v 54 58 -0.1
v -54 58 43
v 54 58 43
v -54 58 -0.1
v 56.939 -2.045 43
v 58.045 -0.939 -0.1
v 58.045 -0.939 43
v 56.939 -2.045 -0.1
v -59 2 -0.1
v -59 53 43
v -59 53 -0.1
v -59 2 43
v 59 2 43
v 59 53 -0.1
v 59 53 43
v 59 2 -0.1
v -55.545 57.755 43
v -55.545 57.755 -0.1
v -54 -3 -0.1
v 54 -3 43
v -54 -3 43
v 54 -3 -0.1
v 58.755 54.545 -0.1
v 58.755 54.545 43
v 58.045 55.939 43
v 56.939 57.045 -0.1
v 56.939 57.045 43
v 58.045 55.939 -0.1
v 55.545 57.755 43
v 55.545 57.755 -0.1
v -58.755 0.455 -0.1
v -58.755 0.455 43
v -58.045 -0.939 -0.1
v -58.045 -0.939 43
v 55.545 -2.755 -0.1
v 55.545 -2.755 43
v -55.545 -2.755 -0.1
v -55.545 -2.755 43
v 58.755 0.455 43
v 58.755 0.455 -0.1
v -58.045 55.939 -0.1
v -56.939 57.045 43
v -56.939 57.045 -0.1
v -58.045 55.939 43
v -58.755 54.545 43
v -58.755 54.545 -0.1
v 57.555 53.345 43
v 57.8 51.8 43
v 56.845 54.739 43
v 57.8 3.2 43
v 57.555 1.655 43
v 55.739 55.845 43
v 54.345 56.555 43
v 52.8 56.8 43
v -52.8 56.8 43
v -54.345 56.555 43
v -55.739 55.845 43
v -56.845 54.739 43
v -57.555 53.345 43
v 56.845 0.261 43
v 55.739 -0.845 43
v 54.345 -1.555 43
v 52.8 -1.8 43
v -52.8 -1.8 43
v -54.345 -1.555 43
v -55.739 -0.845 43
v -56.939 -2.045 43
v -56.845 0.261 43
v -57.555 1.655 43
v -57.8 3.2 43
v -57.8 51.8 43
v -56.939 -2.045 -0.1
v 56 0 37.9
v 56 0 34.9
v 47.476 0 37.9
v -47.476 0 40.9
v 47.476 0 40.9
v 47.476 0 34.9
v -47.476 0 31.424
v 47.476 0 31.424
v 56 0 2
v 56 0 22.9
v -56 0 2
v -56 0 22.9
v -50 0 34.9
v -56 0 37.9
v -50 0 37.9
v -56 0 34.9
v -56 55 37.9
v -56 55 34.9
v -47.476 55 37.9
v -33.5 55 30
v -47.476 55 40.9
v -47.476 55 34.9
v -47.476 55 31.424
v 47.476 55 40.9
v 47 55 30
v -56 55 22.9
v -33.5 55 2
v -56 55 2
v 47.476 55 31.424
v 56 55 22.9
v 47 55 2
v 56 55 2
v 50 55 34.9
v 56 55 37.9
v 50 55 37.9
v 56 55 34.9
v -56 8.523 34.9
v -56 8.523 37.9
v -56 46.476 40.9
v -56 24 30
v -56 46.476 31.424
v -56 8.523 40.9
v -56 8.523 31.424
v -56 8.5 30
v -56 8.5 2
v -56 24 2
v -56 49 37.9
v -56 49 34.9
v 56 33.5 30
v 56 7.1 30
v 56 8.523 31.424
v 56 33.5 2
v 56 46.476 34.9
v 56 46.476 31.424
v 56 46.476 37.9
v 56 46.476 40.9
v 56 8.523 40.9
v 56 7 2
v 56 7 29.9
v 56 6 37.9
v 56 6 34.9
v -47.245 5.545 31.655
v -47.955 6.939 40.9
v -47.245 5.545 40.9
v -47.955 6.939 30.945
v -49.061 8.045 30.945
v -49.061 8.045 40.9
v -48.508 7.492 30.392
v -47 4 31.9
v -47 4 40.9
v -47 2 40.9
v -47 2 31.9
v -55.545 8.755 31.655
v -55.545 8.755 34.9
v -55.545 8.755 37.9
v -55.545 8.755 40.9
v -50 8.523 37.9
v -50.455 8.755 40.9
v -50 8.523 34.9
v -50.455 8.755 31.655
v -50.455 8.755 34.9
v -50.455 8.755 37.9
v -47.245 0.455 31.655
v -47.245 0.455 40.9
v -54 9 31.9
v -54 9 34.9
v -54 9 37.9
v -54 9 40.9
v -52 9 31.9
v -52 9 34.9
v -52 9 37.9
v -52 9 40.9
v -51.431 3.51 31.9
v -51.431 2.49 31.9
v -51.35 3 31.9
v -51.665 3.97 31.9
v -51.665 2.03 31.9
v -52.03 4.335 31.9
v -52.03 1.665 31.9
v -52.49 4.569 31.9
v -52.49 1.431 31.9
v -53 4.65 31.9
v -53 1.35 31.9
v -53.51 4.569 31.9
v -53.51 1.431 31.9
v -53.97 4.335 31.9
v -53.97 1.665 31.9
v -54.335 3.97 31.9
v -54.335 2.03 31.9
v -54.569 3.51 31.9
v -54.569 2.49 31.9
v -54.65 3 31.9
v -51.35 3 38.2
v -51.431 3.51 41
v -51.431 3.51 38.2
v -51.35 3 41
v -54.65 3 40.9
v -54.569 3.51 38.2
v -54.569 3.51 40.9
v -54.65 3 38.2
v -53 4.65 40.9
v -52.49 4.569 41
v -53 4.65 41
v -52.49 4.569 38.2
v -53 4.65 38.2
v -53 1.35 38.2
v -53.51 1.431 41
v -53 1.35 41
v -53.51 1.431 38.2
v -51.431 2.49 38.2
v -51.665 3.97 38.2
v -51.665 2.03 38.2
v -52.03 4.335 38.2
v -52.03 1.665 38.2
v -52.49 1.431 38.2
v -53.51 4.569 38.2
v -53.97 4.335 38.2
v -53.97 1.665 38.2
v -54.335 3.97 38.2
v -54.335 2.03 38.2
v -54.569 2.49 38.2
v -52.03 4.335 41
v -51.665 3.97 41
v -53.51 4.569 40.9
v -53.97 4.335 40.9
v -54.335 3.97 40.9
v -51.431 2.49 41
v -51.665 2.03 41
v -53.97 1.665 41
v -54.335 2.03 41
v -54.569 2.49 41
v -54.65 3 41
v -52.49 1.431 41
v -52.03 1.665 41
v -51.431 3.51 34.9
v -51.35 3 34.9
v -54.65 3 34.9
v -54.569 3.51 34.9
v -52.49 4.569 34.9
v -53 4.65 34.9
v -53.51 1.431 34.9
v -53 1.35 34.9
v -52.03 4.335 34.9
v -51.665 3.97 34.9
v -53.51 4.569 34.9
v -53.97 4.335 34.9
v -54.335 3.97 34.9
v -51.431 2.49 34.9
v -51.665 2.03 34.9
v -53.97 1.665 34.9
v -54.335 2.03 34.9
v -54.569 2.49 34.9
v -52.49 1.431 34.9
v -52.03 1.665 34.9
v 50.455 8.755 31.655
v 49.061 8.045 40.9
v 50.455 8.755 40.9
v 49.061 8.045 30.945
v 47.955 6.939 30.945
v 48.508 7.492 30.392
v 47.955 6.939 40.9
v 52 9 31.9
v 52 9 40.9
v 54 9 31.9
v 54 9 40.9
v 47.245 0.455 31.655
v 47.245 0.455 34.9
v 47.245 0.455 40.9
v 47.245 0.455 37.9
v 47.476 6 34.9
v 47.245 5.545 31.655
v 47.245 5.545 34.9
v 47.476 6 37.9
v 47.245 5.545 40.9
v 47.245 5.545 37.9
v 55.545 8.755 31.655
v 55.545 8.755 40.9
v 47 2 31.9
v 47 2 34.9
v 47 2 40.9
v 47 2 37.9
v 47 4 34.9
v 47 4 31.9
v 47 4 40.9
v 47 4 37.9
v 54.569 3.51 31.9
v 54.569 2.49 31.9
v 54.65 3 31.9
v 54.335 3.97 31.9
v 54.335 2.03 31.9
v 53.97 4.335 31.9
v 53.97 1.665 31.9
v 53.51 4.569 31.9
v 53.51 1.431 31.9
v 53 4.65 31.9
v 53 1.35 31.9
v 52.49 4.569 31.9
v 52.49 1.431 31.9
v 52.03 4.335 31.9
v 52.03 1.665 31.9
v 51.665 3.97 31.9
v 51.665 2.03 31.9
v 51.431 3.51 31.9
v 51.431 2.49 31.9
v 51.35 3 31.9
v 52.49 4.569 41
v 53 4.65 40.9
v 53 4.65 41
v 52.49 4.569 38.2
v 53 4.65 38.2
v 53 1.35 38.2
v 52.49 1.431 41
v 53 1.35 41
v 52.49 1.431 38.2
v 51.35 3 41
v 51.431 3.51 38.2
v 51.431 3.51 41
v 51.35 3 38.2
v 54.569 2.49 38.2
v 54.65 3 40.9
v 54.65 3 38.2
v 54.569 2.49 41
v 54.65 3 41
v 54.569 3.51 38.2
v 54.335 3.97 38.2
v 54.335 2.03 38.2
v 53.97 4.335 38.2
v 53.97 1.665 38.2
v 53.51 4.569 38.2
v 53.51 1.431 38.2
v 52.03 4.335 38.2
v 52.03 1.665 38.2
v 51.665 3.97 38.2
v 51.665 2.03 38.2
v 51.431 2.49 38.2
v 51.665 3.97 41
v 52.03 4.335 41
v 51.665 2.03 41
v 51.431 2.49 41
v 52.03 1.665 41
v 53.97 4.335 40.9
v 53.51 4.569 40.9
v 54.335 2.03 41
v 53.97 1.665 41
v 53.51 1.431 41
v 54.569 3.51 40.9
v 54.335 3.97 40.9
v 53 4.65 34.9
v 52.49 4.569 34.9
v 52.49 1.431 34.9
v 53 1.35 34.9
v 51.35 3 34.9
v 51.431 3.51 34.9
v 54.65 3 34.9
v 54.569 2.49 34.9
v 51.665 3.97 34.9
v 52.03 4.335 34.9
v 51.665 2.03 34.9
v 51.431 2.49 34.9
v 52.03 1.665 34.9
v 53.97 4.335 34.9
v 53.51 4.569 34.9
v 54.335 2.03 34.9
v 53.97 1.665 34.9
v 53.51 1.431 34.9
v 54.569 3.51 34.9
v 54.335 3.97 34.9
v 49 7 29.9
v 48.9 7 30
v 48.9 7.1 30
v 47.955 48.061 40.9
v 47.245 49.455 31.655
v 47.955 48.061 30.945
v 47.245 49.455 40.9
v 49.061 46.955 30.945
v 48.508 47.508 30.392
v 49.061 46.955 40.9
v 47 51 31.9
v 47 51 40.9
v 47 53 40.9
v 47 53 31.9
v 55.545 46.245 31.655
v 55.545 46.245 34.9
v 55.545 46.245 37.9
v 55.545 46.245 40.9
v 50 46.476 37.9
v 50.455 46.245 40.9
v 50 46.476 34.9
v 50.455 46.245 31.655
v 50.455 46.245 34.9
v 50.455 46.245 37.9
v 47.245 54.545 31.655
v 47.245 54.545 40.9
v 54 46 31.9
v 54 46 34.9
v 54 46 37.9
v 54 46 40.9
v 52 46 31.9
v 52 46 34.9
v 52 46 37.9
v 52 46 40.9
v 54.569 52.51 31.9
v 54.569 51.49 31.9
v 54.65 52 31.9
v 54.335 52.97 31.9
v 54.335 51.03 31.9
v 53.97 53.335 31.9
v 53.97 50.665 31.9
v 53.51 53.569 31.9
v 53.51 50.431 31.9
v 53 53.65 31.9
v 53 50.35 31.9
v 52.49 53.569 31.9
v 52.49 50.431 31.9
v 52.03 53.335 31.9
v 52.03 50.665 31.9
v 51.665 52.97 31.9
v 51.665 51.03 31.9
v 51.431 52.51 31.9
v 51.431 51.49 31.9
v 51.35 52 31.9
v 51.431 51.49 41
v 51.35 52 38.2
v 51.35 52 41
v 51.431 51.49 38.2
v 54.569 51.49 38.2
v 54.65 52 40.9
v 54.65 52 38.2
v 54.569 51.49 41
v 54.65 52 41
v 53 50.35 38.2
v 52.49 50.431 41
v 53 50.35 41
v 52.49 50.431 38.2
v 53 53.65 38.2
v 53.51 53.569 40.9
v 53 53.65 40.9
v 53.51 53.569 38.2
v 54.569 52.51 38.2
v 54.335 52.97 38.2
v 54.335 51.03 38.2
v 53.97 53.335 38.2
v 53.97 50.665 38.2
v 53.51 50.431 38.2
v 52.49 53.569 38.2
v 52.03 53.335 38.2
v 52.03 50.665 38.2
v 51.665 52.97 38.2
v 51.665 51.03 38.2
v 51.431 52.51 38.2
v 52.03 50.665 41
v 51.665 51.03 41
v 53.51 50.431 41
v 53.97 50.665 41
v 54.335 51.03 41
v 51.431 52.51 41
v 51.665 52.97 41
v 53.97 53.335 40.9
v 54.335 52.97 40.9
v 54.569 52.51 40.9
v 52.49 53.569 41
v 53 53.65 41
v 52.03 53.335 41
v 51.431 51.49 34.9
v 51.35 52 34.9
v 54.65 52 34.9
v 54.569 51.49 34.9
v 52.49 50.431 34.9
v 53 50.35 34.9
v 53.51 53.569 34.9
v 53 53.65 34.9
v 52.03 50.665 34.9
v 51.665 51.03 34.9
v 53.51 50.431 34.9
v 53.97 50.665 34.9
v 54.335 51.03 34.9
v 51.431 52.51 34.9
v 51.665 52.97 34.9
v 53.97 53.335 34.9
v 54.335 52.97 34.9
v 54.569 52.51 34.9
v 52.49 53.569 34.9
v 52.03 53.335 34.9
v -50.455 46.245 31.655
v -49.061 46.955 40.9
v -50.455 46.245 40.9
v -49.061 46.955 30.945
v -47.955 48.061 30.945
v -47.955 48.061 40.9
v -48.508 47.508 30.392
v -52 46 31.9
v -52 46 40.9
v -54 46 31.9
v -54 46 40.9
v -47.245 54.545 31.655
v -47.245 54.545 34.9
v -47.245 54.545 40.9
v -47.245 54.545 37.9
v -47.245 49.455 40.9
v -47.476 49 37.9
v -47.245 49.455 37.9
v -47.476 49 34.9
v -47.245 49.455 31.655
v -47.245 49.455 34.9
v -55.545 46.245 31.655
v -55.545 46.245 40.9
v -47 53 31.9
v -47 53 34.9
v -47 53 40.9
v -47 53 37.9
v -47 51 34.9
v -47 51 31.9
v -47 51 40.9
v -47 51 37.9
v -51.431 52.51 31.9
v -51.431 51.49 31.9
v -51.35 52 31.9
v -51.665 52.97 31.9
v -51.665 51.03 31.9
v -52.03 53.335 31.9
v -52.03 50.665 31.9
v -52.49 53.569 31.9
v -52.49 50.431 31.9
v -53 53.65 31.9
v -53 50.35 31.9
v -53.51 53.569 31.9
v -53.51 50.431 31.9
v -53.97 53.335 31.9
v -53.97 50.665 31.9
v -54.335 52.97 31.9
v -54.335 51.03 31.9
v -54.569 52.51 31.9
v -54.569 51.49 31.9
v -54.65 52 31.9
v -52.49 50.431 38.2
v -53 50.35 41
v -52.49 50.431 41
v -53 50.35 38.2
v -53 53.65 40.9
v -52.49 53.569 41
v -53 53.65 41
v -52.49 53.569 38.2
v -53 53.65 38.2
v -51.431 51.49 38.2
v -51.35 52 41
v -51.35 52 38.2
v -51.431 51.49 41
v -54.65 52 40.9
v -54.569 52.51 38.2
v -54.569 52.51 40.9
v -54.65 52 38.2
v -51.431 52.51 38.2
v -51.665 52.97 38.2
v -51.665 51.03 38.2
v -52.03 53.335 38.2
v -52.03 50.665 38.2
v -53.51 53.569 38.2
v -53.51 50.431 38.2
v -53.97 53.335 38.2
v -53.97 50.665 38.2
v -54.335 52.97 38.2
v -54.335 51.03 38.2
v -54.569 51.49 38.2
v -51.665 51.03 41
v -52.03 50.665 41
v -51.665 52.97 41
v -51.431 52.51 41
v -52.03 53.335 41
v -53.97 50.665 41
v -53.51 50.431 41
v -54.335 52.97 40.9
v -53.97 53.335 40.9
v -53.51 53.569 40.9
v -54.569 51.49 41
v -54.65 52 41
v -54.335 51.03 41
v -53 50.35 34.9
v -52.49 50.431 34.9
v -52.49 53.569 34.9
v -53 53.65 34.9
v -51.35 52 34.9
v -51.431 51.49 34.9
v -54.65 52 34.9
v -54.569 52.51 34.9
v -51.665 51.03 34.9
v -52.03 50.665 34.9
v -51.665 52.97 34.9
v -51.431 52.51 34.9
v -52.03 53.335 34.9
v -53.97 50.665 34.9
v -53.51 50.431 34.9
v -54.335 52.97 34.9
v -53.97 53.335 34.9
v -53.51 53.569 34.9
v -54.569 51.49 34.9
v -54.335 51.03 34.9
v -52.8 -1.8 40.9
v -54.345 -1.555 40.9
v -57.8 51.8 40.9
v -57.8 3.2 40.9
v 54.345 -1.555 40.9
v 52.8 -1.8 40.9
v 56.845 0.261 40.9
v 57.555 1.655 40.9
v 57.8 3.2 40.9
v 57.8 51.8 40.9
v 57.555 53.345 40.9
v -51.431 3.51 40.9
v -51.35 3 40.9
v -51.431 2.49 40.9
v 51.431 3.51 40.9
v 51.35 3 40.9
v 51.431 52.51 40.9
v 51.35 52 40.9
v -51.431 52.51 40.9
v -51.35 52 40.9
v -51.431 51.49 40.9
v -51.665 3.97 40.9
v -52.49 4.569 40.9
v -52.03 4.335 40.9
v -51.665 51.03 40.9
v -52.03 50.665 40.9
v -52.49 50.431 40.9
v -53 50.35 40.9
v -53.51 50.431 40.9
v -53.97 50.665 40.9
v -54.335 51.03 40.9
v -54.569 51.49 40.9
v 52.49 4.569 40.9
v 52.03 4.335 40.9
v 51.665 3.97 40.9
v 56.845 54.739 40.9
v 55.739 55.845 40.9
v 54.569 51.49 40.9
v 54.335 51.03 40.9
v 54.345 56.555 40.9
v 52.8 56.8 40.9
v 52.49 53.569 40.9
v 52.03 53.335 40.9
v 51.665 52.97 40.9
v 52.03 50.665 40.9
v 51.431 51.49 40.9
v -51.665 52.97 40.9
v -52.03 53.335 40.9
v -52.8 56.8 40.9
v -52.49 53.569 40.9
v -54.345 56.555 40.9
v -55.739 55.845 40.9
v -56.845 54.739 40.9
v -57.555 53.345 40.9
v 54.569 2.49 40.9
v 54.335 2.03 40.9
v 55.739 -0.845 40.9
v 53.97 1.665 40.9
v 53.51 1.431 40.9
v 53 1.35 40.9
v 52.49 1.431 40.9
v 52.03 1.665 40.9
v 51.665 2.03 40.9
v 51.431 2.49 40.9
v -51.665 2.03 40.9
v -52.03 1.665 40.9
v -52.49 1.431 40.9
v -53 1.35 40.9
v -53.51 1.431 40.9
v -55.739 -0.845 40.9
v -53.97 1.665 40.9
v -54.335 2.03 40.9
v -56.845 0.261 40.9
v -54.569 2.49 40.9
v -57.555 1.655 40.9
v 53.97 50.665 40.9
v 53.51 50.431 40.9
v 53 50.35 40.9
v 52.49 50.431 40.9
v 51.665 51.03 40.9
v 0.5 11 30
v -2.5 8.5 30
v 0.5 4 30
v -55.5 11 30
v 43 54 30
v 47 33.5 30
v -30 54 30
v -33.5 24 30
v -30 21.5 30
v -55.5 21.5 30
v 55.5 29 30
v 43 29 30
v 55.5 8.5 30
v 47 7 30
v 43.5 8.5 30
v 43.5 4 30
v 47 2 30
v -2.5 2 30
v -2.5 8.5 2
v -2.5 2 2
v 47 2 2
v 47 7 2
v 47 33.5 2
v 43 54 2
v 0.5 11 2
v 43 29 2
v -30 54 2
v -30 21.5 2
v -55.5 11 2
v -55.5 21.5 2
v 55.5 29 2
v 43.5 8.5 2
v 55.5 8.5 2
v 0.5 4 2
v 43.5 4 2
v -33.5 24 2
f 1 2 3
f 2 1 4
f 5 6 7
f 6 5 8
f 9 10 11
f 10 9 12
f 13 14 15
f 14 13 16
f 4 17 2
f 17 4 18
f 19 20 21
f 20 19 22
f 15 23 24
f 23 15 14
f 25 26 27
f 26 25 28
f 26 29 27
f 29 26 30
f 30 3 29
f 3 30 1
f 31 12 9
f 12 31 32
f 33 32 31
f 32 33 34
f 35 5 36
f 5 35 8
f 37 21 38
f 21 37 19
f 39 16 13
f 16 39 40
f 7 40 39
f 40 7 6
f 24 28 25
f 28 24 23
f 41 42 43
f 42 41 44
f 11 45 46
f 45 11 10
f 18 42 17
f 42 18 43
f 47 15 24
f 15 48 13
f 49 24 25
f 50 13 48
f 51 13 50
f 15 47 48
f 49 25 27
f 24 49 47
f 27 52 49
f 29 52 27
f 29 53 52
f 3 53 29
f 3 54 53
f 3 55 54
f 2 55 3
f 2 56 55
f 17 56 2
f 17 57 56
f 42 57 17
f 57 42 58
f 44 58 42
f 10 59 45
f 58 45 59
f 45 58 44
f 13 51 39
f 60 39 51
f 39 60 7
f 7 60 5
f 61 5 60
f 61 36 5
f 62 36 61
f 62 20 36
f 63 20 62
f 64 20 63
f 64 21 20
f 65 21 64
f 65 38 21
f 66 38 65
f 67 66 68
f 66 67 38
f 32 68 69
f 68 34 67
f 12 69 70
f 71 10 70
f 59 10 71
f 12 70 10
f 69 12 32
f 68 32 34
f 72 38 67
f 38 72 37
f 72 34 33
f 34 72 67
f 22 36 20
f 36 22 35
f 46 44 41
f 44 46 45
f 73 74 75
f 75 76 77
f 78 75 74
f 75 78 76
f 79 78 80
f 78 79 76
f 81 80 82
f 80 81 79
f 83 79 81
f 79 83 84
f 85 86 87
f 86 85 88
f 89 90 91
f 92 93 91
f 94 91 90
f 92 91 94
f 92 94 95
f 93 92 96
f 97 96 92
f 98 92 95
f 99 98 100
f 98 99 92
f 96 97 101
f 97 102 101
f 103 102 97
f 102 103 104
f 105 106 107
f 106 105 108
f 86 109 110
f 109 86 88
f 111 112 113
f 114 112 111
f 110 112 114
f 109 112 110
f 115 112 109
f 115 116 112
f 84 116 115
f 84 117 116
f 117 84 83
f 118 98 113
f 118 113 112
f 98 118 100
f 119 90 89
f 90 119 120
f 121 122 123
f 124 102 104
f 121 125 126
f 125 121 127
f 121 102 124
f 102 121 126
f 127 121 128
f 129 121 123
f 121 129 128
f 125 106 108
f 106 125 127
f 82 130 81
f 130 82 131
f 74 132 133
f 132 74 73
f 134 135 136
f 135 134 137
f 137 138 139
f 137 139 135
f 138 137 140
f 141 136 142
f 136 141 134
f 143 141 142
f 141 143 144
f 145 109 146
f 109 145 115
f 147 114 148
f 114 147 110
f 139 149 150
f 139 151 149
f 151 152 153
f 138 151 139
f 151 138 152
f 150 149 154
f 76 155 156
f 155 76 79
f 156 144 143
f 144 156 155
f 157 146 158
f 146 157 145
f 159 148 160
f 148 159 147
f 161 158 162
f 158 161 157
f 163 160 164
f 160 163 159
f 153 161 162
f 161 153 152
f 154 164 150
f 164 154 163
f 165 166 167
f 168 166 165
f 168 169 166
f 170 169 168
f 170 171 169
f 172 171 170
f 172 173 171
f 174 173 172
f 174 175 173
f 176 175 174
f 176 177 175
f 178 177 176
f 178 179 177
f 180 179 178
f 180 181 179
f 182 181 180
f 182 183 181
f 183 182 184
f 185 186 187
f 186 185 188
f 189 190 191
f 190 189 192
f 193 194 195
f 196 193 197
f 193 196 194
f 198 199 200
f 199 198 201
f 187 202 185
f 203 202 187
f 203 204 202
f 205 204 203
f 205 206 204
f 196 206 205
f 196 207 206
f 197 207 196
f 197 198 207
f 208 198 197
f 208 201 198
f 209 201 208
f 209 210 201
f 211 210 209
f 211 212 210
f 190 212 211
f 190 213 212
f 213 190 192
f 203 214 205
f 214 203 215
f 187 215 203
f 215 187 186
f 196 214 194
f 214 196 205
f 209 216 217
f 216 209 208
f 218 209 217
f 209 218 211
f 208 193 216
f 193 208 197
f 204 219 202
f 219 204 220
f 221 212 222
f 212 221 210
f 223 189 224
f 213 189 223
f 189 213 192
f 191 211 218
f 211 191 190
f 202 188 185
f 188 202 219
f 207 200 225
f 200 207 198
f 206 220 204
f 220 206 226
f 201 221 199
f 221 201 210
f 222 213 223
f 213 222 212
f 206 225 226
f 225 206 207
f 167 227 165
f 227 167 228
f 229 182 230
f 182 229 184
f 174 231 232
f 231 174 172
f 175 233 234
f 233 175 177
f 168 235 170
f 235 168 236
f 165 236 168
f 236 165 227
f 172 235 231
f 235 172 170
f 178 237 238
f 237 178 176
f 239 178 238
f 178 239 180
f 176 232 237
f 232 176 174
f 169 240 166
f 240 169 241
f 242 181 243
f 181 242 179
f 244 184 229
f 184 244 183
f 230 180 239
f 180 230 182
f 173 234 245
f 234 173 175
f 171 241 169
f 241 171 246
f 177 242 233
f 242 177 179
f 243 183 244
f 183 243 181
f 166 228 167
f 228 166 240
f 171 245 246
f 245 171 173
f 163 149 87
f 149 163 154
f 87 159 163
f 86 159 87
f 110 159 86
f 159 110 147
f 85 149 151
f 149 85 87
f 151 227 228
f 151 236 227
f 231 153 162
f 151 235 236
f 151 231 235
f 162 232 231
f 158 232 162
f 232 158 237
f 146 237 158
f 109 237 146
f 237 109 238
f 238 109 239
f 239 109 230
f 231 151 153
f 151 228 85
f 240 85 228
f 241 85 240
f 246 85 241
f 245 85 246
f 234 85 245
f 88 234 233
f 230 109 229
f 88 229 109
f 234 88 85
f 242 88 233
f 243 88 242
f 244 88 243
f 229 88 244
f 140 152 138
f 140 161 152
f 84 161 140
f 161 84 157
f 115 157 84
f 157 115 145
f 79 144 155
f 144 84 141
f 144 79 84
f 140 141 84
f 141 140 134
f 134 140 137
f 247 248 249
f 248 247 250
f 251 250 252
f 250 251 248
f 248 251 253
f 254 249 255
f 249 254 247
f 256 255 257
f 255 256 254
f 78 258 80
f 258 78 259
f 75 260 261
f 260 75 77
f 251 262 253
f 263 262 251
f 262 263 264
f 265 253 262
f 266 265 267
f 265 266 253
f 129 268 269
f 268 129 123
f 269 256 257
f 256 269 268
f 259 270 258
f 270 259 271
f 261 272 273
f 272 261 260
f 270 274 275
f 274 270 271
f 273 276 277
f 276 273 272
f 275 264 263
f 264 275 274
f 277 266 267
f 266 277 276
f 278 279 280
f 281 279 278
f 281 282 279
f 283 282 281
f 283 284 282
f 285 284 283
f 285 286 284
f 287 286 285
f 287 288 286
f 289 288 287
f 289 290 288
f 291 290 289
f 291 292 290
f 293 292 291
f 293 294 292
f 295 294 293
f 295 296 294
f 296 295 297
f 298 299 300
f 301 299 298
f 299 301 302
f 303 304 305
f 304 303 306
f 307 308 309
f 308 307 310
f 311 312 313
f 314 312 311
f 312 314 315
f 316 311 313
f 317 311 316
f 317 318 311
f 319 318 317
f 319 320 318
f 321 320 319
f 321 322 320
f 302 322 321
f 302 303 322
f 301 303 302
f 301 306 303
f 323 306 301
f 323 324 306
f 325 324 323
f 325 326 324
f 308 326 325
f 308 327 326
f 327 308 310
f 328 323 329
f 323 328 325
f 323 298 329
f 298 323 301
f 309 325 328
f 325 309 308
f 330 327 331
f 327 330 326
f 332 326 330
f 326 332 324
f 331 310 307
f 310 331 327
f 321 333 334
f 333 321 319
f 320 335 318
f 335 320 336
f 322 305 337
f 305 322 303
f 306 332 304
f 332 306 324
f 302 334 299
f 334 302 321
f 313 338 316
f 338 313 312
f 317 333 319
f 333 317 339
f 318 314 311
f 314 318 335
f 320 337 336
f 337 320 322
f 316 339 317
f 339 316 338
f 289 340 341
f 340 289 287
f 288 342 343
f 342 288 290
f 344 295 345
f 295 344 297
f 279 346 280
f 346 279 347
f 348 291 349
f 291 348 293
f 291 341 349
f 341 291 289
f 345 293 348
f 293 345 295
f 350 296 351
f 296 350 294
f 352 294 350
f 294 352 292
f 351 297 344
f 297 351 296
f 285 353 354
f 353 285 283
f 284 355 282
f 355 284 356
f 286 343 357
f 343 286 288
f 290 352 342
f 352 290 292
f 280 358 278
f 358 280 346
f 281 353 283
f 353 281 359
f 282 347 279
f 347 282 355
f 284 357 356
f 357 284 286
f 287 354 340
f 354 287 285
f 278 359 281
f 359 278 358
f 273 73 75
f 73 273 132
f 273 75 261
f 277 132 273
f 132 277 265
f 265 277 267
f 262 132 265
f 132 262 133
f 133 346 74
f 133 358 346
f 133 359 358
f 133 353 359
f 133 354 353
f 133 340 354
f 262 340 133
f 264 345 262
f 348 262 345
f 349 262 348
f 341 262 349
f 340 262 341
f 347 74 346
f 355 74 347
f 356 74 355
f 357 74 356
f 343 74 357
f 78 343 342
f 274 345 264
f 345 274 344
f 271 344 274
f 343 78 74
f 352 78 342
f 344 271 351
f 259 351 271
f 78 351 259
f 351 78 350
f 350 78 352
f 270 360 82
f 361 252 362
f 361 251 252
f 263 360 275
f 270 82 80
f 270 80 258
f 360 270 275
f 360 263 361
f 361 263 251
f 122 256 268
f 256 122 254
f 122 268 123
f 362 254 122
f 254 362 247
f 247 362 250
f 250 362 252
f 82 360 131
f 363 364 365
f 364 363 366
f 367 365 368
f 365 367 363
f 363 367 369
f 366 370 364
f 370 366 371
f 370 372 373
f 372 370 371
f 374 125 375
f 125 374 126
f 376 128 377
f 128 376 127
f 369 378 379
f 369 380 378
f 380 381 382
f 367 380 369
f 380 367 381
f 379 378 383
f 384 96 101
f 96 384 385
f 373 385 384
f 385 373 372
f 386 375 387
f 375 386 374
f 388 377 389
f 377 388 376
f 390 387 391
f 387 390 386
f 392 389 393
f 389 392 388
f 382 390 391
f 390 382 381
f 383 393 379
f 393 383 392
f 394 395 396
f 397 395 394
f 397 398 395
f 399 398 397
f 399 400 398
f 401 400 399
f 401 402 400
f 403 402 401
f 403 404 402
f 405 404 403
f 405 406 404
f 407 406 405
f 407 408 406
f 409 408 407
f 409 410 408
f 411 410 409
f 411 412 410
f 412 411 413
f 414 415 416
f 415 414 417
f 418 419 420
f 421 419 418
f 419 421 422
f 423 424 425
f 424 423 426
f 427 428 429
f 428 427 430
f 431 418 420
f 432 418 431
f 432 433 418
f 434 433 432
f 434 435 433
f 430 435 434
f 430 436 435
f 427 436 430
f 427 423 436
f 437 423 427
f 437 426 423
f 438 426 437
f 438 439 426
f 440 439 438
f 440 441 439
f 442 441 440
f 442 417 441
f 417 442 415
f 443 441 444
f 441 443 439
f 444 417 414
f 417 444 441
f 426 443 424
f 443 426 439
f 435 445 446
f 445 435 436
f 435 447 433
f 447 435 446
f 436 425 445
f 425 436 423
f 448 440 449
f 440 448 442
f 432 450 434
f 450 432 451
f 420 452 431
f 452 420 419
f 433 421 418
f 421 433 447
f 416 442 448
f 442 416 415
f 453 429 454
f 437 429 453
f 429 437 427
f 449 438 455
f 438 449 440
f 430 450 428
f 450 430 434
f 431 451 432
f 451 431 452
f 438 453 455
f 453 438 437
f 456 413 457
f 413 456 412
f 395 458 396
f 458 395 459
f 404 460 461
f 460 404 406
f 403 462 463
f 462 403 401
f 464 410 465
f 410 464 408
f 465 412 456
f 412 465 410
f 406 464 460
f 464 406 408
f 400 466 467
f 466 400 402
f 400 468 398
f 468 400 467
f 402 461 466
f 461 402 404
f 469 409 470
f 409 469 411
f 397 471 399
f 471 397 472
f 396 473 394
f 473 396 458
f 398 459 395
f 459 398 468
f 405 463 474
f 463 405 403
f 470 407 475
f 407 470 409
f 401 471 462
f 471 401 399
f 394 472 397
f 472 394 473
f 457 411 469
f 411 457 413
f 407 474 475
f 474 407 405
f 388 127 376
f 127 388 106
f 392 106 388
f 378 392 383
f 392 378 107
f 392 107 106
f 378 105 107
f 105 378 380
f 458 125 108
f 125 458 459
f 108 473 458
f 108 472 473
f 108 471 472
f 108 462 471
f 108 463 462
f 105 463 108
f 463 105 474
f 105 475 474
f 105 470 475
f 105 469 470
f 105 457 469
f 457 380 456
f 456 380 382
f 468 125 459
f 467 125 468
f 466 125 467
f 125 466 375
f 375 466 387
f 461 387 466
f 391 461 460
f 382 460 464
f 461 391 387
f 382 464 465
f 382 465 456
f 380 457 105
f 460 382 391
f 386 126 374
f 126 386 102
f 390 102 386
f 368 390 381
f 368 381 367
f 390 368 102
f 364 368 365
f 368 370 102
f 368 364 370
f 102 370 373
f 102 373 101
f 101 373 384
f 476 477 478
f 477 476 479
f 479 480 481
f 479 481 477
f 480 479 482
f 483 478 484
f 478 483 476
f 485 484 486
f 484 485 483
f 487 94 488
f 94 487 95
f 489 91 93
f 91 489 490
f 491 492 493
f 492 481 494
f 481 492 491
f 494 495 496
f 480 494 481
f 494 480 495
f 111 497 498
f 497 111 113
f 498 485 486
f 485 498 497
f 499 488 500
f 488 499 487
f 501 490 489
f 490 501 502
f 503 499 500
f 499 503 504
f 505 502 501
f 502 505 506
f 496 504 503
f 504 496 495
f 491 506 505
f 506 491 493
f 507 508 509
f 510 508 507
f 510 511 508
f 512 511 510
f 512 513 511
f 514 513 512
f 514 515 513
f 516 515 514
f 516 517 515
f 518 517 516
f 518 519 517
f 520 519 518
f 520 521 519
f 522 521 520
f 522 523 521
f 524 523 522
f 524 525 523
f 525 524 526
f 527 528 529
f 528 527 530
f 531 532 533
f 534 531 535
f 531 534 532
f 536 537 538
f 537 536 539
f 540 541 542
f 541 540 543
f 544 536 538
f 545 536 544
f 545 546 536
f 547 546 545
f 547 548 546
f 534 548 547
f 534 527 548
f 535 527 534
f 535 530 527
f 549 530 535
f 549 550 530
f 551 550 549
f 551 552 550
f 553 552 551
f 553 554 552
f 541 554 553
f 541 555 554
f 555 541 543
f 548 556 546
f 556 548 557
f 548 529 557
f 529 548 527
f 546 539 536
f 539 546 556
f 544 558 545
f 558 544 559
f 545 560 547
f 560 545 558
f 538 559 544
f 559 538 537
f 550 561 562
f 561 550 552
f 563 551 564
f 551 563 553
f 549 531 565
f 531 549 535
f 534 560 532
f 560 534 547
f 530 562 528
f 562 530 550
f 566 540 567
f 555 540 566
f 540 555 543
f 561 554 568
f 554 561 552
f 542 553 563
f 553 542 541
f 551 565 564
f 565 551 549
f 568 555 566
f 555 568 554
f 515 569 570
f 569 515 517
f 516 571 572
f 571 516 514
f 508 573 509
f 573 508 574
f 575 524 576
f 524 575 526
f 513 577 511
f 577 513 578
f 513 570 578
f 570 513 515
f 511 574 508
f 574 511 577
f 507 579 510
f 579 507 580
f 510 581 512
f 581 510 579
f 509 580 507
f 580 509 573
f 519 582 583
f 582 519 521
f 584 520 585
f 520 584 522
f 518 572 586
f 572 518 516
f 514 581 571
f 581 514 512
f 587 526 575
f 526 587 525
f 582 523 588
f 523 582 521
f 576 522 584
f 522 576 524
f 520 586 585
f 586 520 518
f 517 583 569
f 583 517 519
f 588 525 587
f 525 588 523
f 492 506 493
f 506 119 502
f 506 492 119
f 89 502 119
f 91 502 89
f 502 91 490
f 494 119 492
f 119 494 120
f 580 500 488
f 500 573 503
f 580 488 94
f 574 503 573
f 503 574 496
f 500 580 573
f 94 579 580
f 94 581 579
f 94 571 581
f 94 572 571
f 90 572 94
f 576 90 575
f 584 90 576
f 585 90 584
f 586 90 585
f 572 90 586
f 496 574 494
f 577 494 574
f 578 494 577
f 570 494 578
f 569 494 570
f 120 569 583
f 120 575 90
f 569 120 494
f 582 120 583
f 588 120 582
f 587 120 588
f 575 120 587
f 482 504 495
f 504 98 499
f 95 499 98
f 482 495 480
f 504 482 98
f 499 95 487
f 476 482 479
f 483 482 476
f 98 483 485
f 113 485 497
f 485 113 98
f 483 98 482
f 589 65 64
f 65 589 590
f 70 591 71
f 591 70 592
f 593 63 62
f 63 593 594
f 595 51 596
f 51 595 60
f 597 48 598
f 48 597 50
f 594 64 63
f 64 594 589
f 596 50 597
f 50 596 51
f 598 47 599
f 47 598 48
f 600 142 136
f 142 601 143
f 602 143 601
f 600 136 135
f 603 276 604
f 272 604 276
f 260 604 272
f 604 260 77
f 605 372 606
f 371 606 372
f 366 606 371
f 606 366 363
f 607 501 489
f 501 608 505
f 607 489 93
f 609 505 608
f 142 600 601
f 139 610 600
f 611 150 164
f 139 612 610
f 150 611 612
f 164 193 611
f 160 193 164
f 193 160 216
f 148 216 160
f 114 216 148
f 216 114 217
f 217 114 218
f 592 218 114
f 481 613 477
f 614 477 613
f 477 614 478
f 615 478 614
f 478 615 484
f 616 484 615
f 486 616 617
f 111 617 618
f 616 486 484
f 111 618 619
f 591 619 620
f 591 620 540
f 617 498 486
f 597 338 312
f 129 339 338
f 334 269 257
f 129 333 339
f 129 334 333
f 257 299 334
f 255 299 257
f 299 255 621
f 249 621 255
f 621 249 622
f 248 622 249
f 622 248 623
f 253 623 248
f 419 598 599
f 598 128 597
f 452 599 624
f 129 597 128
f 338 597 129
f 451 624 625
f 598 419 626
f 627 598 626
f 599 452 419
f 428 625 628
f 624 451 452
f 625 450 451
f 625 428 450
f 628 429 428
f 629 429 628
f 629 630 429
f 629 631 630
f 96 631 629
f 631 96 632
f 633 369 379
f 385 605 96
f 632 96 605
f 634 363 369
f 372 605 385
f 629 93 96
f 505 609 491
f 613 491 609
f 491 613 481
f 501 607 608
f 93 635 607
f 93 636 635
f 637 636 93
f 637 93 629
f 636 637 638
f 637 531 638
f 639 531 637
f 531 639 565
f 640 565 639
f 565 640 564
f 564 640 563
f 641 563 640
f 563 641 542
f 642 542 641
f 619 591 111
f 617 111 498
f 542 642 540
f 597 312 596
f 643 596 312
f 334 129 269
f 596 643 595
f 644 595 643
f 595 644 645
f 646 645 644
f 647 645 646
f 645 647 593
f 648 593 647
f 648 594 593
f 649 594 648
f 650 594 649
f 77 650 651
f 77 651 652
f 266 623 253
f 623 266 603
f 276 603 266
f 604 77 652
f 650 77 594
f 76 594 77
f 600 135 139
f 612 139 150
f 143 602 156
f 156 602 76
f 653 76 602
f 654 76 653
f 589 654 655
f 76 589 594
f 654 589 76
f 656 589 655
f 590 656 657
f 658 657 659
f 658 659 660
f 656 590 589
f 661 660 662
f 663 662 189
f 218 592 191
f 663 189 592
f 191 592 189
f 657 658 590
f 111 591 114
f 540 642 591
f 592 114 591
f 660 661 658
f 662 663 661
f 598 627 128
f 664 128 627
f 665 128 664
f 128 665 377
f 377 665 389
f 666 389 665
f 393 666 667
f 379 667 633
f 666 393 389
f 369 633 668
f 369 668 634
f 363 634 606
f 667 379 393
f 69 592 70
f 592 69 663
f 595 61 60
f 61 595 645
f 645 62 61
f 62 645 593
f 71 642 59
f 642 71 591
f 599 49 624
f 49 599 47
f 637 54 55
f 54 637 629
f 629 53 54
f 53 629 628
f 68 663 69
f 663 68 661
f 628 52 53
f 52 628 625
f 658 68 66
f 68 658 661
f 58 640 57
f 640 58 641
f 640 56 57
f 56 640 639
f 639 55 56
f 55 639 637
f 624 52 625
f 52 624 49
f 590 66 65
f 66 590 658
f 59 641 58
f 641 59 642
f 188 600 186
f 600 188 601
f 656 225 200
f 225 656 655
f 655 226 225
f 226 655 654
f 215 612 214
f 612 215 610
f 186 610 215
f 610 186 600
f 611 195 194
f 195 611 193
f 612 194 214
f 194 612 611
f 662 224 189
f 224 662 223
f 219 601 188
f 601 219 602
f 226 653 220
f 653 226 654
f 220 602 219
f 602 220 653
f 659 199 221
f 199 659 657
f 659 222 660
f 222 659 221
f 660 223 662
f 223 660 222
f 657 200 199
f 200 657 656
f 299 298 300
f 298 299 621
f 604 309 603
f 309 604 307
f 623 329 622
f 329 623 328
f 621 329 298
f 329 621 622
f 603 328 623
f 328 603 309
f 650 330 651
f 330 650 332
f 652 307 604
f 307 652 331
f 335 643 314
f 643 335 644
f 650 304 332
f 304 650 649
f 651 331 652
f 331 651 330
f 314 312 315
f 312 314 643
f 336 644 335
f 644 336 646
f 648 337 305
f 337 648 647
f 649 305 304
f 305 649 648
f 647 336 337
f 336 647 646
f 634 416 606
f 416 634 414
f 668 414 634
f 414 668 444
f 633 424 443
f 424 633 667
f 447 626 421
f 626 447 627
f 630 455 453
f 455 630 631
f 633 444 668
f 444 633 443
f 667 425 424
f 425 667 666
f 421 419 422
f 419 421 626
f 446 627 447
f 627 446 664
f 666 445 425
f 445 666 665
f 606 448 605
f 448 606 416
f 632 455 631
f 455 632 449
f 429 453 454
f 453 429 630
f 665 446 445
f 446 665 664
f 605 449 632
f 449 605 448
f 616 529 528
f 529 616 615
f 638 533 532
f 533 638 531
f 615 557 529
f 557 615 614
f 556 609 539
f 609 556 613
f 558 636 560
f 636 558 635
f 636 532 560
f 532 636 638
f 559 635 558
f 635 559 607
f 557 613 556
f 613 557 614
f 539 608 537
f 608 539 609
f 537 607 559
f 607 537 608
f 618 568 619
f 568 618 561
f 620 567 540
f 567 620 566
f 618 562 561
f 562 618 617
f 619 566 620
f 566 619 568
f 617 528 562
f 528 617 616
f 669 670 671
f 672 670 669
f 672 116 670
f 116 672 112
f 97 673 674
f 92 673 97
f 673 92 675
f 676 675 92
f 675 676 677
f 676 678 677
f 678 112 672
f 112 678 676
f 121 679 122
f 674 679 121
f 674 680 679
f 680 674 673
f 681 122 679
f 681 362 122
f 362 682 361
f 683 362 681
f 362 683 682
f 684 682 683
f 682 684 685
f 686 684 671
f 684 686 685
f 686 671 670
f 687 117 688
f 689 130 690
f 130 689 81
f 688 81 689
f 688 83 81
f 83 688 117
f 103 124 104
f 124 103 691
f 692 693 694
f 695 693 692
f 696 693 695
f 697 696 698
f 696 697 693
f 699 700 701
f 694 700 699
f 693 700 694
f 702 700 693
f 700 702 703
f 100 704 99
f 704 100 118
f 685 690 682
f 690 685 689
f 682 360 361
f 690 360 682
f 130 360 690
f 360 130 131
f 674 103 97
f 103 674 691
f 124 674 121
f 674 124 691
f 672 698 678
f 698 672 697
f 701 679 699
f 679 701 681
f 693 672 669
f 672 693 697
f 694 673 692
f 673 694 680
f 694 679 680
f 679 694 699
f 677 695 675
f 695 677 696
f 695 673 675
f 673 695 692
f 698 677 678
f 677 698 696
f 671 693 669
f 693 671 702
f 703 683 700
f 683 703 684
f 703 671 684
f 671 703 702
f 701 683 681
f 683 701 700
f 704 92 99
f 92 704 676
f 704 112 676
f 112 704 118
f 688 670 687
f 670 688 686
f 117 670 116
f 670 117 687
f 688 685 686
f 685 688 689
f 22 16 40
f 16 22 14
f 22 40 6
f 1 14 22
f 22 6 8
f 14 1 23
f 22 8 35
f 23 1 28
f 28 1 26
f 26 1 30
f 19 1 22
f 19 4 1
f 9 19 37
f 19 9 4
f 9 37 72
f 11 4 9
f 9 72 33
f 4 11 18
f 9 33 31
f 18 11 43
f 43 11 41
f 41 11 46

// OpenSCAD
// file: ../src/otvory_conf.scad
//Konfigurace pro otvory

//1B) - LCD 2x16
//vzdalenost der
vzdalenost_der_x = 75;
vzdalenost_der_y = 31;
prumer_otvoru = 2.7;
prumer_sloupku = 5;

//ramecek LCD
ramecek_x = 72;
ramecek_y = 23;

//vyska ramecku LCD
ramecek_vyska = 5;
// file: ../src/otvory.scad
//Funkce otvuru pro ruzne prvky umistene do celicek

/*OBSAHUJE
    1A)
    1B)
    1C) - Pro modul USBI2C01A
    1D) - Pro konektor MIC338
    1E) - Pro modul UNIPOWER02A
    1F) - Pro modul I2CDIFF01A
    1G) - Pro modul UNIPOWER03A
    1H) - Větrací otvor
    
    2A) - Otvor na IR
*/


/*1C) - Pro modul USBI2C01A
--------------------------------------------------------
--------------------------------------------------------
pocet_der_dane_strany - protoze nelze definovat na jake strane bude dira umistena, proto se musí rucne zadat pocet der zvolene strany krabicky
posun_od_okraje - zadava se o kolik der se ma posunot modul od kraje celicka
vzdalenost_der - definuje roztec der

modul na dvou matkách má vysku 6.5 mm, pokud nebudo zasahne do nastaveni list krabicky, bude nutno zvednout vysku modulu.

*/

module USBI2C01A(tloustka_bocnice,vzdalenost_der) //uz upraveno
{
 USBI2C01A_sirka_kon=12; //sirka konektoru
 USBI2C01A_vyska_kon=11; //vyska konektoru
 USBI2C01A_sirka_mod_otvory=3; //kolik modul zabira der
 USBI2C01A_svyska_nad_plbase=6; //kolik modul zabira der   
   translate([vzdalenost_der*(USBI2C01A_sirka_mod_otvory-1)/2,0,USBI2C01A_vyska_kon/2+USBI2C01A_svyska_nad_plbase])
   cube(size = [USBI2C01A_sirka_kon,tloustka_bocnice+0.2,USBI2C01A_vyska_kon], center = true);  
    
}

/*1D) - Pro konektor MIC338
--------------------------------------------------------
--------------------------------------------------------
*/
//posun_od_okraje - zadava se o kolik der se ma posunot otvor od středu celicka v nasobcich roztece der

module MIC338(tloustka_bocnice,vzdalenost_der,vyska_bocnice)
{
 MIC338_polomer_kon=8; //polomer montazniho otvoru
   translate([0,0,vyska_bocnice/2])
        rotate(a=[90,0,0])
            cylinder(h=tloustka_bocnice+0.1, r=MIC338_polomer_kon+0.1, center=true);  
    
}

/*1E) - Pro modul UNIPOWER02A
--------------------------------------------------------
--------------------------------------------------------
pocet_der_dane_strany - protoze nelze definovat na jake strane bude dira umistena, proto se musí rucne zadat pocet der zvolene strany krabicky
posun_od_okraje - zadava se o kolik der se ma posunot modul od kraje celicka
vzdalenost_der - definuje rozec der

modul na dvou matkách má vysku 6.5 mm, pokud nebudo zasahne do nastaveni list krabicky, bude nutno zvednout vysku modulu.

*/



module UNIPOWER02A(tloustka_bocnice,vzdalenost_der)
{
 UNIPOWER02A_sirka_kon=10; //sirka konektoru
 UNIPOWER02A_vyska_kon=11; //vyska konektoru
 UNIPOWER02A_sirka_mod_otvory=4; //kolik modul zabira der
 UNIPOWER02A_vzdalenost_konektoru=6; //vzdalenost kraje konektoru od středu šroubu
    UNIPOWER02A_vyska_nad_plbase=6; //vyska mezi albase a konektorem
   translate([UNIPOWER02A_vzdalenost_konektoru,-tloustka_bocnice/2-0.05,UNIPOWER02A_vyska_nad_plbase])
   cube(size = [UNIPOWER02A_sirka_kon,tloustka_bocnice+0.1,UNIPOWER02A_vyska_kon], center = false);
 }   
 
/*1F) - Pro modul I2CDIFF01A
--------------------------------------------------------
--------------------------------------------------------
pocet_der_dane_strany - protoze nelze definovat na jake strane bude dira umistena, proto se musí rucne zadat pocet der zvolene strany krabicky
posun_od_okraje - zadava se o kolik der se ma posunot modul od kraje celicka
vzdalenost_der - definuje roztec der

modul na dvou matkách má vysku 6.5 mm, pokud nebudo zasahne do nastaveni list krabicky, bude nutno zvednout vysku modulu.

*/


module I2CDIFF01A(tloustka_bocnice,vzdalenost_der) //uz upraveno
{
 I2CDIFF01A_sirka_kon=16.5; //sirka konektoru
 I2CDIFF01A_vyska_kon=13.5; //vyska konektoru
 I2CDIFF01A_sirka_mod_otvory=4; //kolik modul zabira der
 I2CDIFF01A_vyska_nad_plbase=6; //vyska mezi albase a konektorem
   translate([vzdalenost_der*(I2CDIFF01A_sirka_mod_otvory-1)/2,0,I2CDIFF01A_vyska_kon/2+I2CDIFF01A_vyska_nad_plbase])
   cube(size = [I2CDIFF01A_sirka_kon,tloustka_bocnice+0.2,I2CDIFF01A_vyska_kon], center = true);  
    
}
 

/*1G) - Pro modul UNIPOWER03A
--------------------------------------------------------
--------------------------------------------------------

*/

module UNIPOWER03A(tloustka_bocnice,vzdalenost_der)
{
 UNIPOWER03A_sirka_kon=10; //sirka konektoru
 UNIPOWER03A_vyska_kon=11; //vyska konektoru
 UNIPOWER03A_sirka_mod_otvory=4; //kolik modul zabira der
 UNIPOWER03A_vzdalenost_konektoru=5; //vzdalenost kraje konektoru od středu šroubu
    UNIPOWER03A_vyska_nad_plbase=6; //vyska mezi albase a konektorem
    
    
   translate([(UNIPOWER03A_sirka_mod_otvory-1)*vzdalenost_der-UNIPOWER03A_sirka_kon-UNIPOWER03A_vzdalenost_konektoru,-tloustka_bocnice/2-0.05,UNIPOWER03A_vyska_nad_plbase])
   cube(size = [UNIPOWER03A_sirka_kon,tloustka_bocnice+0.1,UNIPOWER03A_vyska_kon], center = false);
 }  
 

 /*1G) - OTVOR PRO VETRANI
--------------------------------------------------------
--------------------------------------------------------

*/
 module CHLADICI_OTVORY(tloustka_bocnice,vzdalenost_der,delka,vyska_bocnice)
{
CHLADICI_OTVORY_mezera=0.6; 
CHLADICI_OTVORY_snizeni_vysky=10; 
CHLADICI_OTVORY_prekryti=1.2;     
    
   for (a =[1:delka]) 
     translate([vzdalenost_der*(a-1),0,0])  
   {   
  union() {
   translate([CHLADICI_OTVORY_prekryti/2,-CHLADICI_OTVORY_mezera/2+0.005,CHLADICI_OTVORY_snizeni_vysky/2])
   cube(size = [(vzdalenost_der-2*CHLADICI_OTVORY_prekryti)/2,(tloustka_bocnice+CHLADICI_OTVORY_mezera)/2,vyska_bocnice-CHLADICI_OTVORY_snizeni_vysky], center = false);
    
     translate([(vzdalenost_der+CHLADICI_OTVORY_prekryti)/2,-tloustka_bocnice/2-0.005,CHLADICI_OTVORY_snizeni_vysky/2])
   cube(size = [(vzdalenost_der-2*CHLADICI_OTVORY_prekryti)/2,(tloustka_bocnice+CHLADICI_OTVORY_mezera)/2,vyska_bocnice-CHLADICI_OTVORY_snizeni_vysky], center = false);
    
    
    translate([(vzdalenost_der-CHLADICI_OTVORY_prekryti)/2,-CHLADICI_OTVORY_mezera/2,CHLADICI_OTVORY_snizeni_vysky/2])
    cube(size = [CHLADICI_OTVORY_prekryti,CHLADICI_OTVORY_mezera,vyska_bocnice-CHLADICI_OTVORY_snizeni_vysky], center = false);
      
    translate([(vzdalenost_der-CHLADICI_OTVORY_prekryti)/2+vzdalenost_der/2,-CHLADICI_OTVORY_mezera/2,CHLADICI_OTVORY_snizeni_vysky/2])
    cube(size = [CHLADICI_OTVORY_prekryti+1,CHLADICI_OTVORY_mezera,vyska_bocnice-CHLADICI_OTVORY_snizeni_vysky], center = false);  
 }
 }
 }
 
 
 /*2A) - OTVOR PRO IR
--------------------------------------------------------
--------------------------------------------------------

*/
 
 module IR(tloustka_bocnice,vyska_bocnice)
{
    IR_sirka_kon=7; //sirka senzoru
    IR_vyska_kon=7.5; //vyska senzoru
    IR_hloubka_venkovni=1.2; //sila senzoru od vodičů ven
    IR_vyska_pro_vodice=5; 
    
    
   translate([0,-tloustka_bocnice/2-0.01,vyska_bocnice/2-IR_vyska_kon/2])
   cube(size = [IR_sirka_kon,IR_hloubka_venkovni+0.1,IR_vyska_kon], center = false);
    
    translate([0,-(tloustka_bocnice/2-IR_hloubka_venkovni),vyska_bocnice/2-IR_vyska_kon/2])
   cube(size = [IR_sirka_kon,tloustka_bocnice,IR_vyska_kon+IR_vyska_pro_vodice], center = false);
 } 
// file: ../../../SPACEDOS02A_CAD01A/src/SPACEDOS02A_CAD01A.scad
//Rozmery kovové krabicky vnitrni
krabicka_x=113;
krabicka_y=58;
krabicka_z2=35;  //35

krabicka_otvor_hrana=9.5;

//Rozmery casty modulu
pcb_x=111;
pcb_y=6;

baterka_x=73;
baterka_y=37;

konektor_x=12.5;
konektor_y=12;

SD_karta_x=43;
SD_karta_y=13;

SD_karta_mensi_x=12;
SD_karta_mensi_y=8.5;

dioda_x=25.5;
dioda_y=4.5;

SPACEDOS02A_CAD01A(krabicka_z2);


module SPACEDOS02A_CAD01A(krabicka_z1)
    {
    difference(){

        KRABICKA(krabicka_z1);
            translate([1,19.5,-0.5]) 
                MODUL(krabicka_z1);    
                } 
    }
    



module KRABICKA(krabicka_z)
    {
    difference(){
        cube([krabicka_x,krabicka_y,krabicka_z],center=false);

//otvory
        translate([0,0,-0.5]) 
            cube([krabicka_otvor_hrana,krabicka_otvor_hrana,krabicka_z+1],center=false);
    
        translate([krabicka_x-krabicka_otvor_hrana,0,-0.5]) 
            cube([krabicka_otvor_hrana,krabicka_otvor_hrana,krabicka_z+1],center=false);
        
        translate([0,krabicka_y-krabicka_otvor_hrana,-0.5]) 
            cube([krabicka_otvor_hrana,krabicka_otvor_hrana,krabicka_z+1],center=false);
    
        translate([krabicka_x-krabicka_otvor_hrana,krabicka_y-krabicka_otvor_hrana-12-0.5]) 
            cube([krabicka_otvor_hrana,krabicka_otvor_hrana+20,krabicka_z+1],center=false);


                }
    }   


module MODUL(krabicka_z)
    {

    //pcb
    translate([0,-pcb_y,-0.5]) 
        cube([pcb_x,pcb_y,krabicka_z+1],center=false);

    //konektor
    translate([pcb_x-konektor_x,0,-0.5]) 
        cube([konektor_x,konektor_y,krabicka_z+1],center=false);

    //baterka
    translate([pcb_x-konektor_x-baterka_x,0,-0.5]) 
        cube([baterka_x,baterka_y,krabicka_z+1],center=false);

    //dioda
    translate([pcb_x-konektor_x-baterka_x-dioda_x,0,-0.5]) 
        cube([dioda_x,dioda_y,krabicka_z+1],center=false);

    //SD karta
    translate([pcb_x-SD_karta_x-SD_karta_mensi_x,-SD_karta_y,-0.5]) 
        cube([SD_karta_x,SD_karta_y,krabicka_z+1],center=false);
        
    //SD karta mensi otvor
    translate([pcb_x-SD_karta_mensi_x,-SD_karta_mensi_y,-0.5]) 
        cube([SD_karta_mensi_x,SD_karta_mensi_y,krabicka_z+1],center=false);  
     
    //vyrez levy horni
    translate([-2,7,-0.5]) 
       cube([24,60,krabicka_z+1],center=false);  
        
         //vyrez levy dolni
    translate([-2,-21,-0.5]) 
        cube([55,12.5,krabicka_z+1],center=false);  
     
   //vyrez pravy dolni
    translate([-2,-21,-0.5]) 
        cube([krabicka_x+4,6,krabicka_z+1],center=false);     
        
       //vyrez pravy horni
    translate([-2,7,-0.5]) 
       cube([24,60,krabicka_z+1],center=false);    
    
     }
// file: ../src/bocnice.scad
use <text/Write.scad>
use <MLAB_logo.scad>
use <sloupek.scad>
use <plbase.scad>
include <manufactury_conf.scad>
include <../configuration.scad>

bocnice(pocet_der1,pocet_der2,radidus_hrany,vzdalenost_der,vzdalenost_od_okraje1,vzdalenost_od_okraje2,prumer_sroubu,vyska_bocnice,prekryti_der,tloustka_bocnice);

//Bočnice
//------------------------------------------------------------


module bocnice(pocet_der1,pocet_der2,radidus_hrany,vzdalenost_der,vzdalenost_od_okraje1,vzdalenost_od_okraje2,prumer_sroubu,vyska_bocnice,prekryti_der,tloustka_bocnice){

difference () {
    union()
        {
        translate([-((pocet_der2)*vzdalenost_der+2*vzdalenost_od_okraje2)/2,-vzdalenost_od_okraje1,vyska_bocnice/2])
        rotate(a=[180,0,90])        
            translate([radidus_hrany,radidus_hrany,0])
                translate([-tloustka_bocnice,-tloustka_bocnice,0])
        
    //obvod
      difference () {

        minkowski()
        {
            cube([(pocet_der1)*vzdalenost_der+2*vzdalenost_od_okraje1-2*radidus_hrany+2*tloustka_bocnice,(pocet_der2)*vzdalenost_der+2*vzdalenost_od_okraje2-2*radidus_hrany+2*tloustka_bocnice,vyska_bocnice+tloustka_plbase]);          // base plastics brick
            cylinder(r=radidus_hrany,h=0.01);
        }   

        translate([tloustka_bocnice-radidus_hrany,tloustka_bocnice-radidus_hrany,-0.1])    
            
                cube([(pocet_der1)*vzdalenost_der+2*vzdalenost_od_okraje1,(pocet_der2)*vzdalenost_der+2*vzdalenost_od_okraje2,vyska_bocnice+tloustka_plbase+0.2]);        
 
  
        
    }     
      
   
    
//SLOUPKY
//------------------------------------------------------------
//sloupek 1

    translate([(-(pocet_der2)*vzdalenost_der)/2-vzdalenost_od_okraje2+prumer_matice/2,-vzdalenost_od_okraje1+prumer_matice/2,vyska_bocnice/2-(vyska_matice+2*tloustka_bocnice+0.1)-tloustka_plbase])
        sloupek ();

//sloupek 2

    translate([((pocet_der2)*vzdalenost_der)/2+vzdalenost_od_okraje2-prumer_matice/2,-vzdalenost_od_okraje1+prumer_matice/2,vyska_bocnice/2-(vyska_matice+2*tloustka_bocnice+0.1)-tloustka_plbase])
        rotate(a=[0,0,90])
            sloupek ();

//sloupek 3

    translate([((pocet_der2)*vzdalenost_der)/2+vzdalenost_od_okraje2-prumer_matice/2, (pocet_der1)*vzdalenost_der+vzdalenost_od_okraje1-prumer_matice/2,vyska_bocnice/2-(vyska_matice+2*tloustka_bocnice+0.1)-tloustka_plbase])
        rotate(a=[0,0,180])
            sloupek ();

//sloupek 4

    translate([-((pocet_der2)*vzdalenost_der)/2-vzdalenost_od_okraje2+prumer_matice/2, (pocet_der1)*vzdalenost_der+vzdalenost_od_okraje1-prumer_matice/2,vyska_bocnice/2-(vyska_matice+2*tloustka_bocnice+0.1)-tloustka_plbase])
        rotate(a=[0,0,270])
            sloupek ();
/* 
//uchyt 1
 translate([(-(pocet_der2)*vzdalenost_der)/2-vzdalenost_od_okraje2-Uchyt_radius/2-Uchyt_x+0.5,-vzdalenost_od_okraje1+vzdalenost_der/2,-vyska_bocnice/2-tloustka_plbase])
uchyt();
 
 //uchyt 2
 translate([((pocet_der2)*vzdalenost_der)/2+vzdalenost_od_okraje2+tloustka_bocnice+Uchyt_radius-0.5,-vzdalenost_od_okraje1+vzdalenost_der/2,-vyska_bocnice/2-tloustka_plbase])
uchyt();

//uchyt 3
 translate([(-(pocet_der2)*vzdalenost_der)/2-vzdalenost_od_okraje2-Uchyt_radius/2-Uchyt_x+0.5,(pocet_der1)*vzdalenost_der+vzdalenost_od_okraje1-Uchyt_y+Uchyt_radius-vzdalenost_der/2,-vyska_bocnice/2-tloustka_plbase])
uchyt();
 
 //uchyt 4
 translate([((pocet_der2)*vzdalenost_der)/2+vzdalenost_od_okraje2+tloustka_bocnice+Uchyt_radius-0.5,(pocet_der1)*vzdalenost_der+vzdalenost_od_okraje1-Uchyt_y+Uchyt_radius-vzdalenost_der/2,-vyska_bocnice/2-tloustka_plbase])
uchyt();
*/ 
 }




//----------------------------------------------------
//LOGO MLAB 
/*  
translate([(5-(pocet_der2)*vzdalenost_der)/2,0,0])
            translate ([0, -vzdalenost_od_okraje-tloustka_bocnice*1/2,0])  // 
                rotate([0, 90, 270])
                    scale(v = [logo_sirka, logo_vyska, 0.3])
                        MLAB_logo_short();
*/



//plbase odecet na kryt
  translate([0,0,vyska_bocnice/2-tloustka_plbase/2+0.05])
    rotate(a=[0,0,0])
    {
    plbase_vrchni_kryt_pro_odecet(pocet_der1,pocet_der2,radidus_hrany,vzdalenost_der,vzdalenost_od_okraje1,vzdalenost_od_okraje2,prumer_sroubu,vyska_bocnice,prekryti_der,tloustka_bocnice,0,tloustka_plbase+0.1);
    }


}
}




//uchyt();

module uchyt(){
    difference () {
minkowski()
    {
	cube([Uchyt_x-2*Uchyt_radius,Uchyt_y-2*Uchyt_radius,Uchyt_vyska_mat+M3_vyska_hlavy]);          // base plastics brick
        cylinder(r=Uchyt_radius,h=0.1);
    }

//otvor na hlavu
translate([(Uchyt_x)/2-Uchyt_radius,(Uchyt_y)/2-Uchyt_radius,Uchyt_vyska_mat+M3_vyska_hlavy/2])  
cylinder(h=M3_vyska_hlavy+0.6, r=M3_prumer_hlavy/2, center=true); 
    
////otvor na sroub
translate([(Uchyt_x)/2-Uchyt_radius,(Uchyt_y)/2-Uchyt_radius,(Uchyt_vyska_mat+M3_vyska_hlavy)/2])  
cylinder(h=Uchyt_vyska_mat+M3_vyska_hlavy+0.6, r=M3_prumer/2, center=true);     
    

 }   
  } 
  
  
  
// file: ../configuration.scad
//Název boxu (zařízení)
box_jmeno="SPACEDOS02A";

vzdalenost_der = 1; //rozteč děr mezi sebou
radidus_hrany = 5; //radius zaobleni sloupku
vzdalenost_od_okraje = 8.2; //vzdalenost stredu upevnovaci diry od kraje desky
vzdalenost_od_okraje1 = 0;
vzdalenost_od_okraje2 = 0;
pocet_der1 = 56; //pocet děr v ose y
pocet_der2 = 113; //pocet der v ose x



//OBECNE PARAMETRY KRABICKY
//------------------------------------------------------------
//BOCNICE
vyska_bocnice=39;
tloustka_bocnice=3;


//PLBASE PARAMETRY
//------------------------------------------------------------
tloustka_plbase = 2; //tloustka plbase - dna
prekryti_der=0.2; //sila materiálu, který překrývá díry, aby nebyli vidět

plbase_tolerance_horni=0.5; //pro zvětšení tolerance aby tam šlo dát  horní čelíčko


//Rozmery loga MLAB
//------------------------------------------------------------
logo_vyska=0.15;
logo_sirka=0.15;


//Sroub M3
M3_prumer=3.4;
M3_prumer_hlavy=7;
M3_vyska_hlavy=5;
M3_vyska_matky=3;
M3_sirka_matky=6.7;
Uchyt_vyska_mat=4;
Uchyt_radius=2;
Uchyt_x=13;
Uchyt_y=10;

dno_vyska_ramecku=9;
dno_vule=0.6;
dno_sila_materialu=4;
dno_spodni_rantl=3;
dno_vule_na_matky=0;
// file: ../src/manufactury_conf.scad
$fn=20; // model faces resolution.

 //Sroub - podpěra pro tisk sloupku
        vyska_podpery=12;
        vyska_mat_pod_matici=3;

//Sroub - parametry
vyska_hlavy = 3.5;
prumer_hlavy=6;
prumer_sroubu=3.3;

//Matice - parametry
prumer_matice=6; //hrany k hraně
vyska_matice=3;  //vyska matice
posuv_dorazu=1;  //pro moznost posuvu dorazu pro vsunutí matice
matice_sila_materialu=2; //sila materialu pod maticí na ose z


//Lišta parametry
//---------------------------------------------------
//rozměry výrezu v ose y
vzdalenost_od_diry = 5; //vzdalenost od stredu upevnovaci diry na druhou stranu


//Spodní Kryt
vyska_prekryti_spodni=3;
vyska_prekryti_vrchni=4;
prekryti_tolerance=0.6;
tolerance_na_nasunuti=0.3;
sila_spodniho_krytu=1;

//Pro vrchni PLBASE
hrana_bocnice=1.2; //udává jaká síla bocnice zůstane v části zapustěni vrchního čelička
// file: ../upravena_bocnice.scad
use <src/bocnice.scad>
//nacteni dat pro drzak modulu SPACEDOS02A
use <../../SPACEDOS02A_CAD01A/src/SPACEDOS02A_CAD01A.scad>
use <src/otvory.scad>
include <src/manufactury_conf.scad>
include <configuration.scad>
include <src/otvory_conf.scad>

upravena_bocnice();

//Slouzi pro vytvoreni bocnice s vlastnimi otvory


module upravena_bocnice()
{
difference() {
    union() {
    bocnice(pocet_der1-1,pocet_der2-1,radidus_hrany,vzdalenost_der,vzdalenost_od_okraje1,vzdalenost_od_okraje2,prumer_sroubu,vyska_bocnice,prekryti_der,tloustka_bocnice);


 translate([-((pocet_der2-1)*vzdalenost_der)/2-0.5,-vzdalenost_od_okraje1-tloustka_bocnice/2-1,-(vyska_bocnice/2)-tloustka_plbase])
    SPACEDOS02A_CAD01A(28);

            }
            
 
//Vytvoreni otvorů v přední stěně
//--------------------------------------------------------
    union() {            
        translate([-((pocet_der2-1)*vzdalenost_der)/2,-vzdalenost_od_okraje1-tloustka_bocnice/2,-(vyska_bocnice/2)])
        {
        //složí k posunu otvoru v násobku děr
        
            }
            



//Vytvoreni zadniho celicka krabicky
//--------------------------------------------------------
        translate([((pocet_der2-1)*vzdalenost_der)/2,(pocet_der1-1)*vzdalenost_der+vzdalenost_od_okraje1+tloustka_bocnice/2,-(vyska_bocnice/2)])
    {
    
     }

//Vytvoreni leveho celicka krabicky
//--------------------------------------------------------

        translate([-((pocet_der2-1)*vzdalenost_der)/2-vzdalenost_od_okraje2-tloustka_bocnice/2,(pocet_der1-1)*vzdalenost_der,-(vyska_bocnice/2)])
    {
        
    }

//Vytvoreni praveho celicka krabicky
//--------------------------------------------------------
        translate([+((pocet_der2-1)*vzdalenost_der)/2+vzdalenost_od_okraje2+tloustka_bocnice/2,0,-(vyska_bocnice/2)])
       {
      
                          
        }
}
}
}
// file: ../src/sloupek.scad
include <manufactury_conf.scad>
include <../configuration.scad>
use <MLAB_logo.scad>

sloupek ();


//Funkce pro generovani sloupku
module sloupek() {

difference () {
    translate([-(prumer_matice+2*tloustka_bocnice-2*radidus_hrany)/2,-(prumer_matice+2*tloustka_bocnice-2*radidus_hrany)/2,0])
minkowski()
    {
	cube([prumer_matice+2*tloustka_bocnice-2*radidus_hrany,prumer_matice+2*tloustka_bocnice-2*radidus_hrany,vyska_matice+2*tloustka_bocnice]);          // base plastics brick
        cylinder(r=radidus_hrany,h=0.1);
    }
 
   translate([0,0,vyska_matice+2*tloustka_bocnice+0.1-tloustka_bocnice/2+0.2])  
  cylinder((tloustka_bocnice), d=(prumer_sroubu), center=true);    
    
 cylinder((vyska_matice+2*tloustka_bocnice), d=(prumer_sroubu), center=true);   
    
    
    //otvor na matici
     translate([0,tloustka_bocnice/2-posuv_dorazu/2,(vyska_matice+2*tloustka_bocnice)/2])  
              
        cube([prumer_matice, prumer_matice+posuv_dorazu+tloustka_bocnice,vyska_matice], center = true);
    
    }

difference () {
   translate([-(prumer_matice+2*tloustka_bocnice)/2,-(prumer_matice+2*tloustka_bocnice)/2,-vyska_podpery])
rotate([0, 0, 45])
    
cylinder(vyska_podpery,0,sqrt(2*((prumer_matice+2*tloustka_bocnice)*(prumer_matice+2*tloustka_bocnice))),$fn=4);
  
   
  
    
   difference () {



	translate([-((sqrt(2*((prumer_matice+2*tloustka_bocnice)*(prumer_matice+2*tloustka_bocnice))*2))),-((sqrt(2*((prumer_matice+2*tloustka_bocnice)*(prumer_matice+2*tloustka_bocnice))*2))),-vyska_podpery])
 cube([2*(sqrt(2*((prumer_matice+2*tloustka_bocnice)*(prumer_matice+2*tloustka_bocnice))*2)),2*(sqrt(2*((prumer_matice+2*tloustka_bocnice)*(prumer_matice+2*tloustka_bocnice))*2)),vyska_podpery+0.1]);
  
  translate([-(prumer_matice+2*tloustka_bocnice-2*radidus_hrany)/2,-(prumer_matice+2*tloustka_bocnice-2*radidus_hrany)/2,-vyska_podpery+0.05])
       
minkowski()
    {
	cube([prumer_matice+2*tloustka_bocnice-2*radidus_hrany,prumer_matice+2*tloustka_bocnice-2*radidus_hrany,vyska_podpery+0.01]);          // base plastics brick
        cylinder(r=radidus_hrany,h=0.1);
    }
 }   
   
   
   
    
   } 
   
   
 

 }   
// main file
use <../src/plbase.scad>
use <../src/sloupek.scad>
use <../upravena_bocnice.scad>



include <../src/manufactury_conf.scad>
include <../configuration.scad>



//BOCNICE
//-------------------------------------------------------------


translate([0,0,(vyska_bocnice/2)+tloustka_plbase+tloustka_plbase])
upravena_bocnice();

//DNO
//-------------------------------------------------------------
translate([-((pocet_der2-1)*vzdalenost_der+2*vzdalenost_od_okraje2)/2-tloustka_bocnice,-vzdalenost_od_okraje1-tloustka_bocnice,tloustka_plbase])
        rotate(a=[180,0,90])

plbase_bez_der2(pocet_der1,pocet_der2,radidus_hrany,vzdalenost_der,vzdalenost_od_okraje1,vzdalenost_od_okraje2,prumer_sroubu,tloustka_plbase,prekryti_der,tloustka_bocnice);    
    
  
